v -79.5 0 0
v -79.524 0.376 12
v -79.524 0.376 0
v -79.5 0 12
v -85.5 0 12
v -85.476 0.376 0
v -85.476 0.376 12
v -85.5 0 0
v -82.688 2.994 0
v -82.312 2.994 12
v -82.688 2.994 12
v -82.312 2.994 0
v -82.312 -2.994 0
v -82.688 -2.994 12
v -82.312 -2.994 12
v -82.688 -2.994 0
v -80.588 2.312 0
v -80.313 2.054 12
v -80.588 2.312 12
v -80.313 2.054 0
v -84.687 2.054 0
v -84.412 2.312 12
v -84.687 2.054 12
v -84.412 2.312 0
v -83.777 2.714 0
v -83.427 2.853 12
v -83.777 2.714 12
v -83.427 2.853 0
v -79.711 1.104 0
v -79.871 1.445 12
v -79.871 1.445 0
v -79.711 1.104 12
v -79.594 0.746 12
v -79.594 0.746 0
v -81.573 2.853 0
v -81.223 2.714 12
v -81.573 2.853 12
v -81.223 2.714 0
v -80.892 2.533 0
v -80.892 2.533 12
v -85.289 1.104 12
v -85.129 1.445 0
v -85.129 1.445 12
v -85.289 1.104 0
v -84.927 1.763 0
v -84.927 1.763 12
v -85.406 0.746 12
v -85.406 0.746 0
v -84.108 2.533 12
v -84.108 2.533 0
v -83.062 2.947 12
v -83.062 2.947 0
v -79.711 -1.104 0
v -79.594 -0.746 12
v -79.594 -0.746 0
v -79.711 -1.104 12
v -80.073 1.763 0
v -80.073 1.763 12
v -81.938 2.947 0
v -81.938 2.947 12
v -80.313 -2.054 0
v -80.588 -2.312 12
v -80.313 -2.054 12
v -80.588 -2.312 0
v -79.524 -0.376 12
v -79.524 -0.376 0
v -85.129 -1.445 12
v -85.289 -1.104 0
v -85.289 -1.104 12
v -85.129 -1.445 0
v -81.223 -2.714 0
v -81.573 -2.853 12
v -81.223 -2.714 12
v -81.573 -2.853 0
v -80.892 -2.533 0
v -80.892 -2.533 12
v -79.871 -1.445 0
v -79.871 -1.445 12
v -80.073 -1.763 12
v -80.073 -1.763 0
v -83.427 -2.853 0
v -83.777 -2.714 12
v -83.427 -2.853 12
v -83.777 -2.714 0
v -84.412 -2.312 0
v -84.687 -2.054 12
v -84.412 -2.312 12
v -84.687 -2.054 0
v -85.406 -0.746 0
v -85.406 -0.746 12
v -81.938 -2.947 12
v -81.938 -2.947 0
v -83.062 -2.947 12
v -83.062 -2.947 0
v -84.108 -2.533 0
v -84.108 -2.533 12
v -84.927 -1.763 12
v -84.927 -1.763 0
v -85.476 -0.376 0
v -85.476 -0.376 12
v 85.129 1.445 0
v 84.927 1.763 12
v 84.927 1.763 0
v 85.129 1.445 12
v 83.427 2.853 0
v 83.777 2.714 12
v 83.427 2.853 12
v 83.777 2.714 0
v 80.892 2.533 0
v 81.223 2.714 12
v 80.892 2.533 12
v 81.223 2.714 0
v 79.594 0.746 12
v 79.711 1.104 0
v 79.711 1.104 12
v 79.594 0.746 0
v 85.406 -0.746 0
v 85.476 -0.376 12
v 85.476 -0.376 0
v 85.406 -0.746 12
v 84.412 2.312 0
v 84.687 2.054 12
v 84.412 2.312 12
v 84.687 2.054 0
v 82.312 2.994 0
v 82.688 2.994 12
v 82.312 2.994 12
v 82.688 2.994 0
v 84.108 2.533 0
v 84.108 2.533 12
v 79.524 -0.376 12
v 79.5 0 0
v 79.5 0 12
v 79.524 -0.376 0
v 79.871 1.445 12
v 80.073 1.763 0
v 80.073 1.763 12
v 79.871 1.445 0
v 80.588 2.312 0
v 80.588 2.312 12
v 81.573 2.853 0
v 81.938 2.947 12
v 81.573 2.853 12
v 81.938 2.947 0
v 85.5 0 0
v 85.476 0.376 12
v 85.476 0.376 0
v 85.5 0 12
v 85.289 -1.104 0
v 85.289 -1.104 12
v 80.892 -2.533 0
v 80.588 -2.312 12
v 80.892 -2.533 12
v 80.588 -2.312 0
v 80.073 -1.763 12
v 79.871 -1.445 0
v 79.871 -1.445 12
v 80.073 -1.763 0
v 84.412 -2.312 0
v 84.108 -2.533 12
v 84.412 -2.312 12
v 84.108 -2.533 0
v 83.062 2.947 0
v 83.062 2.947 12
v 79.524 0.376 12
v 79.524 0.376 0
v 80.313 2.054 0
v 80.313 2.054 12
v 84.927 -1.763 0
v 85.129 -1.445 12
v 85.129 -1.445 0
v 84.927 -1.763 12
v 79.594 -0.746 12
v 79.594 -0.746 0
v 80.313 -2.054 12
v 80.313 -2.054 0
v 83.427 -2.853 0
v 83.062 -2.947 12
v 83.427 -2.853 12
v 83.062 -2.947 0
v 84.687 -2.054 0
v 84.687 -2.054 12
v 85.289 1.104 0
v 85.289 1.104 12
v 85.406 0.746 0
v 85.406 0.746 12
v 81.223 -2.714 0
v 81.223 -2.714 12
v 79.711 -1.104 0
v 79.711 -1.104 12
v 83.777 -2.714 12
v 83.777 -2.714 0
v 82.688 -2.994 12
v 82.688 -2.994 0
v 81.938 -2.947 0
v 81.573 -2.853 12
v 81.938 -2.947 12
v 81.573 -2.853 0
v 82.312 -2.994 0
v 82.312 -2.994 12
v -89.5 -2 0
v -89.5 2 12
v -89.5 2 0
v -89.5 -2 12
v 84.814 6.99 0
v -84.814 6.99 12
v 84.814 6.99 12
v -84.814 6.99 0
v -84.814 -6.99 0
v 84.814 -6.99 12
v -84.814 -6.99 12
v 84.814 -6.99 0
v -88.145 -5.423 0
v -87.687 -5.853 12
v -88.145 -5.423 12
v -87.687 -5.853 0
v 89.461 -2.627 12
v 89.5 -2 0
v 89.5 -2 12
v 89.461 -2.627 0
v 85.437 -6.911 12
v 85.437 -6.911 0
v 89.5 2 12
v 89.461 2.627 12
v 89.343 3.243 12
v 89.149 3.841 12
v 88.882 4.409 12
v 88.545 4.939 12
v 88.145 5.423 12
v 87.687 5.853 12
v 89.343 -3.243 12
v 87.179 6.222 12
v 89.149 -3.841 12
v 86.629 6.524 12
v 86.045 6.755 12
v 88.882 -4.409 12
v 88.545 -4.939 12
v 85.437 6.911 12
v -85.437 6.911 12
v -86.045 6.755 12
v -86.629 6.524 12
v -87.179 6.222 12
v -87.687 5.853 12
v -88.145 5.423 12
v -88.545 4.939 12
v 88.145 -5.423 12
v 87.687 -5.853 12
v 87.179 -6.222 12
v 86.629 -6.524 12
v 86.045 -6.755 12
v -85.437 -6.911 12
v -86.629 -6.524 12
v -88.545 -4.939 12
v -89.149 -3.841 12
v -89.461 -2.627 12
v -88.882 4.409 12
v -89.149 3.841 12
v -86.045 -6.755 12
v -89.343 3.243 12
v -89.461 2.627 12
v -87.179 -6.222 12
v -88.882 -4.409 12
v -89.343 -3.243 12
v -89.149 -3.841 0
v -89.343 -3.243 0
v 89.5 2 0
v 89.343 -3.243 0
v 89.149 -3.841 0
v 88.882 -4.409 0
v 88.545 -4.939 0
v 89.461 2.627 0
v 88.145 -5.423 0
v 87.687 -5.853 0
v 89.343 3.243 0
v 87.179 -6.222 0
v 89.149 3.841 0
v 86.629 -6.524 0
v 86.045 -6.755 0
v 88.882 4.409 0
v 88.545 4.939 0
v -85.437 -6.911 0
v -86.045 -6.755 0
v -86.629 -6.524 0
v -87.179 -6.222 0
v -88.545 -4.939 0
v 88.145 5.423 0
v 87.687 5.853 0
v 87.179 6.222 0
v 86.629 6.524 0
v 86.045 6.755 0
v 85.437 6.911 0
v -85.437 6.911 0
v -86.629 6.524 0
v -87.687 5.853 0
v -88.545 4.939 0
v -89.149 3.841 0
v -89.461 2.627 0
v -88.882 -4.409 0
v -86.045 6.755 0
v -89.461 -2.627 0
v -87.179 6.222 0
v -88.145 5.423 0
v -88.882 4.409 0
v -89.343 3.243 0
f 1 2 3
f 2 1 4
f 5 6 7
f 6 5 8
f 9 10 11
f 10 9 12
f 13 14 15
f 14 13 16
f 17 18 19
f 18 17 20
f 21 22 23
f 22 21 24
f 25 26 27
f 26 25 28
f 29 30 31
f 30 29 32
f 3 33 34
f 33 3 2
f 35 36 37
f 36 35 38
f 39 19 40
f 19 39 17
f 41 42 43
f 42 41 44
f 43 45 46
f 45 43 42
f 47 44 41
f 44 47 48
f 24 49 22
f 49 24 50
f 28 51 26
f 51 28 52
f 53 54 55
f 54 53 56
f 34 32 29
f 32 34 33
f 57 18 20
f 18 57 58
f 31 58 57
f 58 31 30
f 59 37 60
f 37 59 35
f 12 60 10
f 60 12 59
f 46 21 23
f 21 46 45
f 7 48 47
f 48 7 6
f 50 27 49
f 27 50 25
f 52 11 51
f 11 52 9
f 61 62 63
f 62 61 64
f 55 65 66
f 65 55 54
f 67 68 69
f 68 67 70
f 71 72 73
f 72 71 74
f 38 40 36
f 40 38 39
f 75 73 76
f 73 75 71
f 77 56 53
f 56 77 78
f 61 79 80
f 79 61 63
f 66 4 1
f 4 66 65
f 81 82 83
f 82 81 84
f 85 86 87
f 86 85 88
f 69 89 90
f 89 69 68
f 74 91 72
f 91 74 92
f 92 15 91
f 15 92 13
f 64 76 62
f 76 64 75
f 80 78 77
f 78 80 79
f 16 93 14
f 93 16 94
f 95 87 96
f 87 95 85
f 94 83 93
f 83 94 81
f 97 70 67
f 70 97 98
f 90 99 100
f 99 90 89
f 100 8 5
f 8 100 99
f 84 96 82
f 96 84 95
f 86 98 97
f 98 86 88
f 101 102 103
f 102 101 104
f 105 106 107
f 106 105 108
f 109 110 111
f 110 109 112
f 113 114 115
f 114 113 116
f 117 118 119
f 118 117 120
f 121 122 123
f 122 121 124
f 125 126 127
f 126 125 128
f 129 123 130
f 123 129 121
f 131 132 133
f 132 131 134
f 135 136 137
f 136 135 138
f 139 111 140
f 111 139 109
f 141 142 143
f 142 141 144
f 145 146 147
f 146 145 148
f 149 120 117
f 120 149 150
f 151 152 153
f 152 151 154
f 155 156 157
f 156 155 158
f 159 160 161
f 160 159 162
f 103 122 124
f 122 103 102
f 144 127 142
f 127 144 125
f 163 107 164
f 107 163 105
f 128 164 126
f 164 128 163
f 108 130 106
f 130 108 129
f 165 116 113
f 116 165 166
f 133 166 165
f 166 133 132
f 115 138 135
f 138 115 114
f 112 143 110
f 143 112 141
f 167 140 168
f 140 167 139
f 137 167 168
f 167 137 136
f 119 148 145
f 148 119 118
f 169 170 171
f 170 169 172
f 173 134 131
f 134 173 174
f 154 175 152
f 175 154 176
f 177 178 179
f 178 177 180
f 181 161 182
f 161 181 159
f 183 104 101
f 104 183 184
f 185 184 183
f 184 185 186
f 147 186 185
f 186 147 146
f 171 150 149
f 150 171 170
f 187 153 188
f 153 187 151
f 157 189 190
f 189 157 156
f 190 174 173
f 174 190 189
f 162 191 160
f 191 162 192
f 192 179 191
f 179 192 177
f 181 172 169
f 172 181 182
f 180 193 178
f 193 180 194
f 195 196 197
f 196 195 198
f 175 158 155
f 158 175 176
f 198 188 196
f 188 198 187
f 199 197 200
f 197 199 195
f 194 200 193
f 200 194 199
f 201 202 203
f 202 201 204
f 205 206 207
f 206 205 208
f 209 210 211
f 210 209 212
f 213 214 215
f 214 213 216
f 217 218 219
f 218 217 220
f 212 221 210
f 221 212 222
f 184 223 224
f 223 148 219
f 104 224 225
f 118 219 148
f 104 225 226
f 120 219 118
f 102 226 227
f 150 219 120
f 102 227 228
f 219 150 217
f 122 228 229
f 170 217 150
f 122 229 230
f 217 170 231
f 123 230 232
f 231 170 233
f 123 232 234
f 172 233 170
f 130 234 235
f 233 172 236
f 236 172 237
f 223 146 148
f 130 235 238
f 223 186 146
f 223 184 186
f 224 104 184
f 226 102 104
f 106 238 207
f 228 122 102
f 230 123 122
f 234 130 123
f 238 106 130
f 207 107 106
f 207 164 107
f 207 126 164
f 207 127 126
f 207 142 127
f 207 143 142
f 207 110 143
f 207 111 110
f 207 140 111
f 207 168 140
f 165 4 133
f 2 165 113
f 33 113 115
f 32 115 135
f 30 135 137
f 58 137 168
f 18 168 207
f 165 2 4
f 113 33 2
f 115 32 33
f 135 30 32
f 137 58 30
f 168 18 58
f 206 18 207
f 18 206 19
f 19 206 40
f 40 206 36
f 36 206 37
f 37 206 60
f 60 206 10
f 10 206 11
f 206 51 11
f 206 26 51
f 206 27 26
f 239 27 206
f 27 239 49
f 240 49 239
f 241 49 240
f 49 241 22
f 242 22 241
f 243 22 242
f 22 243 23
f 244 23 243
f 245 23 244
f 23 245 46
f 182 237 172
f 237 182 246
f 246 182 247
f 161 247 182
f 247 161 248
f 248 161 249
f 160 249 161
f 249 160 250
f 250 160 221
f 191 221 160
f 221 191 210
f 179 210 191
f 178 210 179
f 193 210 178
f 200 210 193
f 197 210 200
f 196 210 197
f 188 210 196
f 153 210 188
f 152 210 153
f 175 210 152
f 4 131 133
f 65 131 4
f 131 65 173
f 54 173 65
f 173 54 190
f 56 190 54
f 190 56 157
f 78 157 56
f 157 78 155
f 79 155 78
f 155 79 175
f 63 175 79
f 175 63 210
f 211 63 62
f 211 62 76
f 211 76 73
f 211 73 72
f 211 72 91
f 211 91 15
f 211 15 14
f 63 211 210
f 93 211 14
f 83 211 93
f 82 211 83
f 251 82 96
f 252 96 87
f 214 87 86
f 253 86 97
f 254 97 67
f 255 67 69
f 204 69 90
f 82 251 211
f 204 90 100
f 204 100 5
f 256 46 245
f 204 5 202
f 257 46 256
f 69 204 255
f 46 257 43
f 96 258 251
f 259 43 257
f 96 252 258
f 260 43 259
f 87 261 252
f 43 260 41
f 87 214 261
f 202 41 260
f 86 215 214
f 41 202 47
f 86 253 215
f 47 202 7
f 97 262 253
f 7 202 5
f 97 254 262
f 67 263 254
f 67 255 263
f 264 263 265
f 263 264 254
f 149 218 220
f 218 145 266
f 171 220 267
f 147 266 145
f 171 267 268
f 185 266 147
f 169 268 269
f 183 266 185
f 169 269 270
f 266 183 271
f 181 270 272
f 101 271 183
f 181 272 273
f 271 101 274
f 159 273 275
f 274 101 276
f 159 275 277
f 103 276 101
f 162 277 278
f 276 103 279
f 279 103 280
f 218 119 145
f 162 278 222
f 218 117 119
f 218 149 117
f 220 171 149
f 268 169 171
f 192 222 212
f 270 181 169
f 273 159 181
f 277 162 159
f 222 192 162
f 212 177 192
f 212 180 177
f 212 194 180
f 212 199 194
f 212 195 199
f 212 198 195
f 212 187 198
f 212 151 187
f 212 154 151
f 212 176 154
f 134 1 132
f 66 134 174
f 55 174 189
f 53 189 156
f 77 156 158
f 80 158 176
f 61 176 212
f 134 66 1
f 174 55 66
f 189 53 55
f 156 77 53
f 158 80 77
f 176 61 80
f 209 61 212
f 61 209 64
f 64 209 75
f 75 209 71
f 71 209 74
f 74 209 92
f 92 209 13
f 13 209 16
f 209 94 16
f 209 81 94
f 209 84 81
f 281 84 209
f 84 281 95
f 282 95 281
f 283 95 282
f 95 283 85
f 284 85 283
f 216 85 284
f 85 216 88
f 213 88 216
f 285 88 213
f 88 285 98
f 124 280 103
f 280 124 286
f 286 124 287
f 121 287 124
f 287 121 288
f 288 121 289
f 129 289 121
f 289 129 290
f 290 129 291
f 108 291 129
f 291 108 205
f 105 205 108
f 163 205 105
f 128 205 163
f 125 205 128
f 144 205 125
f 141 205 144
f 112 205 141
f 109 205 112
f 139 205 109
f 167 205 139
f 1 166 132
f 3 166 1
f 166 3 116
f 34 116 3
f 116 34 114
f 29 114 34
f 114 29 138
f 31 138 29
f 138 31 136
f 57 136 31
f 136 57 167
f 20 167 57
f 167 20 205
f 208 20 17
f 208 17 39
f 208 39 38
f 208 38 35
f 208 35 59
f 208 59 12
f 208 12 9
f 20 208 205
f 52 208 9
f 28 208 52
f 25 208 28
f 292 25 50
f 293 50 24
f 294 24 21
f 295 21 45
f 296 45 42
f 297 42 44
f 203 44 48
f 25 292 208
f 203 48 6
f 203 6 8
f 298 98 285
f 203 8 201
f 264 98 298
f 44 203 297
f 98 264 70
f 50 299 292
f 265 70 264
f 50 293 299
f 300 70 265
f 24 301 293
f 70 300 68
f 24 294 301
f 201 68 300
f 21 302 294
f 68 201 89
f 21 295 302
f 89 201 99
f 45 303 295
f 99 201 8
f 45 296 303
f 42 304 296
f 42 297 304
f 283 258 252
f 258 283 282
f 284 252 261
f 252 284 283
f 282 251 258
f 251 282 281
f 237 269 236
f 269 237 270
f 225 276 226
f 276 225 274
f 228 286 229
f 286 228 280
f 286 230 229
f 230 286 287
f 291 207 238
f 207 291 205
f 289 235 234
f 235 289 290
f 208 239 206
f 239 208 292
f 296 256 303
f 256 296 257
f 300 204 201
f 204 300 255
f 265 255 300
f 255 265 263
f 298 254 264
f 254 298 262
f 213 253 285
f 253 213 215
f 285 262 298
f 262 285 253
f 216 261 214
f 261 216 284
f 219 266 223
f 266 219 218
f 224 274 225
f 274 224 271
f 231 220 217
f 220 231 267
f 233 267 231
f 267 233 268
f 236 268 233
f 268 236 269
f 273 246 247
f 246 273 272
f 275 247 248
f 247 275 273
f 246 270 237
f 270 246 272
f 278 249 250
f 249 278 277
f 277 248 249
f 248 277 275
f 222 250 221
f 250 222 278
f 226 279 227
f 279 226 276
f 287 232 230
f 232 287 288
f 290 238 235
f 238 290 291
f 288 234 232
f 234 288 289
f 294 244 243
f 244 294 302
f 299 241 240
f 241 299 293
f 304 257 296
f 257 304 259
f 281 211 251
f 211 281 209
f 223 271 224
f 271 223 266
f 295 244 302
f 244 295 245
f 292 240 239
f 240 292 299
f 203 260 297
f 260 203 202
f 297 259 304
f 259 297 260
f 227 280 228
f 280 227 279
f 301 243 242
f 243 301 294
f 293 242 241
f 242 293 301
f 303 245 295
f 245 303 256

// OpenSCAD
$fn = 50;


difference() {
	union() {
		hull() {
			translate(v = [-84.5000000000, 2.0000000000, 0]) {
				cylinder(h = 12, r = 5);
			}
			translate(v = [84.5000000000, 2.0000000000, 0]) {
				cylinder(h = 12, r = 5);
			}
			translate(v = [-84.5000000000, -2.0000000000, 0]) {
				cylinder(h = 12, r = 5);
			}
			translate(v = [84.5000000000, -2.0000000000, 0]) {
				cylinder(h = 12, r = 5);
			}
		}
	}
	union() {
		translate(v = [-82.5000000000, 0.0000000000, 0]) {
			cylinder(h = 12, r = 3.0000000000);
		}
		translate(v = [82.5000000000, 0.0000000000, 0]) {
			cylinder(h = 12, r = 3.0000000000);
		}
		translate(v = [-82.5000000000, 0.0000000000, 0]) {
			cylinder(h = 12, r = 1.5000000000);
		}
		translate(v = [82.5000000000, 0.0000000000, 0]) {
			cylinder(h = 12, r = 1.5000000000);
		}
		translate(v = [-82.5000000000, 0.0000000000, 0]) {
			cylinder(h = 12, r = 1.5000000000);
		}
		translate(v = [82.5000000000, 0.0000000000, 0]) {
			cylinder(h = 12, r = 1.5000000000);
		}
		translate(v = [-82.5000000000, 0.0000000000, 0]) {
			cylinder(h = 12, r = 1.5000000000);
		}
		translate(v = [82.5000000000, 0.0000000000, 0]) {
			cylinder(h = 12, r = 1.5000000000);
		}
	}
}
